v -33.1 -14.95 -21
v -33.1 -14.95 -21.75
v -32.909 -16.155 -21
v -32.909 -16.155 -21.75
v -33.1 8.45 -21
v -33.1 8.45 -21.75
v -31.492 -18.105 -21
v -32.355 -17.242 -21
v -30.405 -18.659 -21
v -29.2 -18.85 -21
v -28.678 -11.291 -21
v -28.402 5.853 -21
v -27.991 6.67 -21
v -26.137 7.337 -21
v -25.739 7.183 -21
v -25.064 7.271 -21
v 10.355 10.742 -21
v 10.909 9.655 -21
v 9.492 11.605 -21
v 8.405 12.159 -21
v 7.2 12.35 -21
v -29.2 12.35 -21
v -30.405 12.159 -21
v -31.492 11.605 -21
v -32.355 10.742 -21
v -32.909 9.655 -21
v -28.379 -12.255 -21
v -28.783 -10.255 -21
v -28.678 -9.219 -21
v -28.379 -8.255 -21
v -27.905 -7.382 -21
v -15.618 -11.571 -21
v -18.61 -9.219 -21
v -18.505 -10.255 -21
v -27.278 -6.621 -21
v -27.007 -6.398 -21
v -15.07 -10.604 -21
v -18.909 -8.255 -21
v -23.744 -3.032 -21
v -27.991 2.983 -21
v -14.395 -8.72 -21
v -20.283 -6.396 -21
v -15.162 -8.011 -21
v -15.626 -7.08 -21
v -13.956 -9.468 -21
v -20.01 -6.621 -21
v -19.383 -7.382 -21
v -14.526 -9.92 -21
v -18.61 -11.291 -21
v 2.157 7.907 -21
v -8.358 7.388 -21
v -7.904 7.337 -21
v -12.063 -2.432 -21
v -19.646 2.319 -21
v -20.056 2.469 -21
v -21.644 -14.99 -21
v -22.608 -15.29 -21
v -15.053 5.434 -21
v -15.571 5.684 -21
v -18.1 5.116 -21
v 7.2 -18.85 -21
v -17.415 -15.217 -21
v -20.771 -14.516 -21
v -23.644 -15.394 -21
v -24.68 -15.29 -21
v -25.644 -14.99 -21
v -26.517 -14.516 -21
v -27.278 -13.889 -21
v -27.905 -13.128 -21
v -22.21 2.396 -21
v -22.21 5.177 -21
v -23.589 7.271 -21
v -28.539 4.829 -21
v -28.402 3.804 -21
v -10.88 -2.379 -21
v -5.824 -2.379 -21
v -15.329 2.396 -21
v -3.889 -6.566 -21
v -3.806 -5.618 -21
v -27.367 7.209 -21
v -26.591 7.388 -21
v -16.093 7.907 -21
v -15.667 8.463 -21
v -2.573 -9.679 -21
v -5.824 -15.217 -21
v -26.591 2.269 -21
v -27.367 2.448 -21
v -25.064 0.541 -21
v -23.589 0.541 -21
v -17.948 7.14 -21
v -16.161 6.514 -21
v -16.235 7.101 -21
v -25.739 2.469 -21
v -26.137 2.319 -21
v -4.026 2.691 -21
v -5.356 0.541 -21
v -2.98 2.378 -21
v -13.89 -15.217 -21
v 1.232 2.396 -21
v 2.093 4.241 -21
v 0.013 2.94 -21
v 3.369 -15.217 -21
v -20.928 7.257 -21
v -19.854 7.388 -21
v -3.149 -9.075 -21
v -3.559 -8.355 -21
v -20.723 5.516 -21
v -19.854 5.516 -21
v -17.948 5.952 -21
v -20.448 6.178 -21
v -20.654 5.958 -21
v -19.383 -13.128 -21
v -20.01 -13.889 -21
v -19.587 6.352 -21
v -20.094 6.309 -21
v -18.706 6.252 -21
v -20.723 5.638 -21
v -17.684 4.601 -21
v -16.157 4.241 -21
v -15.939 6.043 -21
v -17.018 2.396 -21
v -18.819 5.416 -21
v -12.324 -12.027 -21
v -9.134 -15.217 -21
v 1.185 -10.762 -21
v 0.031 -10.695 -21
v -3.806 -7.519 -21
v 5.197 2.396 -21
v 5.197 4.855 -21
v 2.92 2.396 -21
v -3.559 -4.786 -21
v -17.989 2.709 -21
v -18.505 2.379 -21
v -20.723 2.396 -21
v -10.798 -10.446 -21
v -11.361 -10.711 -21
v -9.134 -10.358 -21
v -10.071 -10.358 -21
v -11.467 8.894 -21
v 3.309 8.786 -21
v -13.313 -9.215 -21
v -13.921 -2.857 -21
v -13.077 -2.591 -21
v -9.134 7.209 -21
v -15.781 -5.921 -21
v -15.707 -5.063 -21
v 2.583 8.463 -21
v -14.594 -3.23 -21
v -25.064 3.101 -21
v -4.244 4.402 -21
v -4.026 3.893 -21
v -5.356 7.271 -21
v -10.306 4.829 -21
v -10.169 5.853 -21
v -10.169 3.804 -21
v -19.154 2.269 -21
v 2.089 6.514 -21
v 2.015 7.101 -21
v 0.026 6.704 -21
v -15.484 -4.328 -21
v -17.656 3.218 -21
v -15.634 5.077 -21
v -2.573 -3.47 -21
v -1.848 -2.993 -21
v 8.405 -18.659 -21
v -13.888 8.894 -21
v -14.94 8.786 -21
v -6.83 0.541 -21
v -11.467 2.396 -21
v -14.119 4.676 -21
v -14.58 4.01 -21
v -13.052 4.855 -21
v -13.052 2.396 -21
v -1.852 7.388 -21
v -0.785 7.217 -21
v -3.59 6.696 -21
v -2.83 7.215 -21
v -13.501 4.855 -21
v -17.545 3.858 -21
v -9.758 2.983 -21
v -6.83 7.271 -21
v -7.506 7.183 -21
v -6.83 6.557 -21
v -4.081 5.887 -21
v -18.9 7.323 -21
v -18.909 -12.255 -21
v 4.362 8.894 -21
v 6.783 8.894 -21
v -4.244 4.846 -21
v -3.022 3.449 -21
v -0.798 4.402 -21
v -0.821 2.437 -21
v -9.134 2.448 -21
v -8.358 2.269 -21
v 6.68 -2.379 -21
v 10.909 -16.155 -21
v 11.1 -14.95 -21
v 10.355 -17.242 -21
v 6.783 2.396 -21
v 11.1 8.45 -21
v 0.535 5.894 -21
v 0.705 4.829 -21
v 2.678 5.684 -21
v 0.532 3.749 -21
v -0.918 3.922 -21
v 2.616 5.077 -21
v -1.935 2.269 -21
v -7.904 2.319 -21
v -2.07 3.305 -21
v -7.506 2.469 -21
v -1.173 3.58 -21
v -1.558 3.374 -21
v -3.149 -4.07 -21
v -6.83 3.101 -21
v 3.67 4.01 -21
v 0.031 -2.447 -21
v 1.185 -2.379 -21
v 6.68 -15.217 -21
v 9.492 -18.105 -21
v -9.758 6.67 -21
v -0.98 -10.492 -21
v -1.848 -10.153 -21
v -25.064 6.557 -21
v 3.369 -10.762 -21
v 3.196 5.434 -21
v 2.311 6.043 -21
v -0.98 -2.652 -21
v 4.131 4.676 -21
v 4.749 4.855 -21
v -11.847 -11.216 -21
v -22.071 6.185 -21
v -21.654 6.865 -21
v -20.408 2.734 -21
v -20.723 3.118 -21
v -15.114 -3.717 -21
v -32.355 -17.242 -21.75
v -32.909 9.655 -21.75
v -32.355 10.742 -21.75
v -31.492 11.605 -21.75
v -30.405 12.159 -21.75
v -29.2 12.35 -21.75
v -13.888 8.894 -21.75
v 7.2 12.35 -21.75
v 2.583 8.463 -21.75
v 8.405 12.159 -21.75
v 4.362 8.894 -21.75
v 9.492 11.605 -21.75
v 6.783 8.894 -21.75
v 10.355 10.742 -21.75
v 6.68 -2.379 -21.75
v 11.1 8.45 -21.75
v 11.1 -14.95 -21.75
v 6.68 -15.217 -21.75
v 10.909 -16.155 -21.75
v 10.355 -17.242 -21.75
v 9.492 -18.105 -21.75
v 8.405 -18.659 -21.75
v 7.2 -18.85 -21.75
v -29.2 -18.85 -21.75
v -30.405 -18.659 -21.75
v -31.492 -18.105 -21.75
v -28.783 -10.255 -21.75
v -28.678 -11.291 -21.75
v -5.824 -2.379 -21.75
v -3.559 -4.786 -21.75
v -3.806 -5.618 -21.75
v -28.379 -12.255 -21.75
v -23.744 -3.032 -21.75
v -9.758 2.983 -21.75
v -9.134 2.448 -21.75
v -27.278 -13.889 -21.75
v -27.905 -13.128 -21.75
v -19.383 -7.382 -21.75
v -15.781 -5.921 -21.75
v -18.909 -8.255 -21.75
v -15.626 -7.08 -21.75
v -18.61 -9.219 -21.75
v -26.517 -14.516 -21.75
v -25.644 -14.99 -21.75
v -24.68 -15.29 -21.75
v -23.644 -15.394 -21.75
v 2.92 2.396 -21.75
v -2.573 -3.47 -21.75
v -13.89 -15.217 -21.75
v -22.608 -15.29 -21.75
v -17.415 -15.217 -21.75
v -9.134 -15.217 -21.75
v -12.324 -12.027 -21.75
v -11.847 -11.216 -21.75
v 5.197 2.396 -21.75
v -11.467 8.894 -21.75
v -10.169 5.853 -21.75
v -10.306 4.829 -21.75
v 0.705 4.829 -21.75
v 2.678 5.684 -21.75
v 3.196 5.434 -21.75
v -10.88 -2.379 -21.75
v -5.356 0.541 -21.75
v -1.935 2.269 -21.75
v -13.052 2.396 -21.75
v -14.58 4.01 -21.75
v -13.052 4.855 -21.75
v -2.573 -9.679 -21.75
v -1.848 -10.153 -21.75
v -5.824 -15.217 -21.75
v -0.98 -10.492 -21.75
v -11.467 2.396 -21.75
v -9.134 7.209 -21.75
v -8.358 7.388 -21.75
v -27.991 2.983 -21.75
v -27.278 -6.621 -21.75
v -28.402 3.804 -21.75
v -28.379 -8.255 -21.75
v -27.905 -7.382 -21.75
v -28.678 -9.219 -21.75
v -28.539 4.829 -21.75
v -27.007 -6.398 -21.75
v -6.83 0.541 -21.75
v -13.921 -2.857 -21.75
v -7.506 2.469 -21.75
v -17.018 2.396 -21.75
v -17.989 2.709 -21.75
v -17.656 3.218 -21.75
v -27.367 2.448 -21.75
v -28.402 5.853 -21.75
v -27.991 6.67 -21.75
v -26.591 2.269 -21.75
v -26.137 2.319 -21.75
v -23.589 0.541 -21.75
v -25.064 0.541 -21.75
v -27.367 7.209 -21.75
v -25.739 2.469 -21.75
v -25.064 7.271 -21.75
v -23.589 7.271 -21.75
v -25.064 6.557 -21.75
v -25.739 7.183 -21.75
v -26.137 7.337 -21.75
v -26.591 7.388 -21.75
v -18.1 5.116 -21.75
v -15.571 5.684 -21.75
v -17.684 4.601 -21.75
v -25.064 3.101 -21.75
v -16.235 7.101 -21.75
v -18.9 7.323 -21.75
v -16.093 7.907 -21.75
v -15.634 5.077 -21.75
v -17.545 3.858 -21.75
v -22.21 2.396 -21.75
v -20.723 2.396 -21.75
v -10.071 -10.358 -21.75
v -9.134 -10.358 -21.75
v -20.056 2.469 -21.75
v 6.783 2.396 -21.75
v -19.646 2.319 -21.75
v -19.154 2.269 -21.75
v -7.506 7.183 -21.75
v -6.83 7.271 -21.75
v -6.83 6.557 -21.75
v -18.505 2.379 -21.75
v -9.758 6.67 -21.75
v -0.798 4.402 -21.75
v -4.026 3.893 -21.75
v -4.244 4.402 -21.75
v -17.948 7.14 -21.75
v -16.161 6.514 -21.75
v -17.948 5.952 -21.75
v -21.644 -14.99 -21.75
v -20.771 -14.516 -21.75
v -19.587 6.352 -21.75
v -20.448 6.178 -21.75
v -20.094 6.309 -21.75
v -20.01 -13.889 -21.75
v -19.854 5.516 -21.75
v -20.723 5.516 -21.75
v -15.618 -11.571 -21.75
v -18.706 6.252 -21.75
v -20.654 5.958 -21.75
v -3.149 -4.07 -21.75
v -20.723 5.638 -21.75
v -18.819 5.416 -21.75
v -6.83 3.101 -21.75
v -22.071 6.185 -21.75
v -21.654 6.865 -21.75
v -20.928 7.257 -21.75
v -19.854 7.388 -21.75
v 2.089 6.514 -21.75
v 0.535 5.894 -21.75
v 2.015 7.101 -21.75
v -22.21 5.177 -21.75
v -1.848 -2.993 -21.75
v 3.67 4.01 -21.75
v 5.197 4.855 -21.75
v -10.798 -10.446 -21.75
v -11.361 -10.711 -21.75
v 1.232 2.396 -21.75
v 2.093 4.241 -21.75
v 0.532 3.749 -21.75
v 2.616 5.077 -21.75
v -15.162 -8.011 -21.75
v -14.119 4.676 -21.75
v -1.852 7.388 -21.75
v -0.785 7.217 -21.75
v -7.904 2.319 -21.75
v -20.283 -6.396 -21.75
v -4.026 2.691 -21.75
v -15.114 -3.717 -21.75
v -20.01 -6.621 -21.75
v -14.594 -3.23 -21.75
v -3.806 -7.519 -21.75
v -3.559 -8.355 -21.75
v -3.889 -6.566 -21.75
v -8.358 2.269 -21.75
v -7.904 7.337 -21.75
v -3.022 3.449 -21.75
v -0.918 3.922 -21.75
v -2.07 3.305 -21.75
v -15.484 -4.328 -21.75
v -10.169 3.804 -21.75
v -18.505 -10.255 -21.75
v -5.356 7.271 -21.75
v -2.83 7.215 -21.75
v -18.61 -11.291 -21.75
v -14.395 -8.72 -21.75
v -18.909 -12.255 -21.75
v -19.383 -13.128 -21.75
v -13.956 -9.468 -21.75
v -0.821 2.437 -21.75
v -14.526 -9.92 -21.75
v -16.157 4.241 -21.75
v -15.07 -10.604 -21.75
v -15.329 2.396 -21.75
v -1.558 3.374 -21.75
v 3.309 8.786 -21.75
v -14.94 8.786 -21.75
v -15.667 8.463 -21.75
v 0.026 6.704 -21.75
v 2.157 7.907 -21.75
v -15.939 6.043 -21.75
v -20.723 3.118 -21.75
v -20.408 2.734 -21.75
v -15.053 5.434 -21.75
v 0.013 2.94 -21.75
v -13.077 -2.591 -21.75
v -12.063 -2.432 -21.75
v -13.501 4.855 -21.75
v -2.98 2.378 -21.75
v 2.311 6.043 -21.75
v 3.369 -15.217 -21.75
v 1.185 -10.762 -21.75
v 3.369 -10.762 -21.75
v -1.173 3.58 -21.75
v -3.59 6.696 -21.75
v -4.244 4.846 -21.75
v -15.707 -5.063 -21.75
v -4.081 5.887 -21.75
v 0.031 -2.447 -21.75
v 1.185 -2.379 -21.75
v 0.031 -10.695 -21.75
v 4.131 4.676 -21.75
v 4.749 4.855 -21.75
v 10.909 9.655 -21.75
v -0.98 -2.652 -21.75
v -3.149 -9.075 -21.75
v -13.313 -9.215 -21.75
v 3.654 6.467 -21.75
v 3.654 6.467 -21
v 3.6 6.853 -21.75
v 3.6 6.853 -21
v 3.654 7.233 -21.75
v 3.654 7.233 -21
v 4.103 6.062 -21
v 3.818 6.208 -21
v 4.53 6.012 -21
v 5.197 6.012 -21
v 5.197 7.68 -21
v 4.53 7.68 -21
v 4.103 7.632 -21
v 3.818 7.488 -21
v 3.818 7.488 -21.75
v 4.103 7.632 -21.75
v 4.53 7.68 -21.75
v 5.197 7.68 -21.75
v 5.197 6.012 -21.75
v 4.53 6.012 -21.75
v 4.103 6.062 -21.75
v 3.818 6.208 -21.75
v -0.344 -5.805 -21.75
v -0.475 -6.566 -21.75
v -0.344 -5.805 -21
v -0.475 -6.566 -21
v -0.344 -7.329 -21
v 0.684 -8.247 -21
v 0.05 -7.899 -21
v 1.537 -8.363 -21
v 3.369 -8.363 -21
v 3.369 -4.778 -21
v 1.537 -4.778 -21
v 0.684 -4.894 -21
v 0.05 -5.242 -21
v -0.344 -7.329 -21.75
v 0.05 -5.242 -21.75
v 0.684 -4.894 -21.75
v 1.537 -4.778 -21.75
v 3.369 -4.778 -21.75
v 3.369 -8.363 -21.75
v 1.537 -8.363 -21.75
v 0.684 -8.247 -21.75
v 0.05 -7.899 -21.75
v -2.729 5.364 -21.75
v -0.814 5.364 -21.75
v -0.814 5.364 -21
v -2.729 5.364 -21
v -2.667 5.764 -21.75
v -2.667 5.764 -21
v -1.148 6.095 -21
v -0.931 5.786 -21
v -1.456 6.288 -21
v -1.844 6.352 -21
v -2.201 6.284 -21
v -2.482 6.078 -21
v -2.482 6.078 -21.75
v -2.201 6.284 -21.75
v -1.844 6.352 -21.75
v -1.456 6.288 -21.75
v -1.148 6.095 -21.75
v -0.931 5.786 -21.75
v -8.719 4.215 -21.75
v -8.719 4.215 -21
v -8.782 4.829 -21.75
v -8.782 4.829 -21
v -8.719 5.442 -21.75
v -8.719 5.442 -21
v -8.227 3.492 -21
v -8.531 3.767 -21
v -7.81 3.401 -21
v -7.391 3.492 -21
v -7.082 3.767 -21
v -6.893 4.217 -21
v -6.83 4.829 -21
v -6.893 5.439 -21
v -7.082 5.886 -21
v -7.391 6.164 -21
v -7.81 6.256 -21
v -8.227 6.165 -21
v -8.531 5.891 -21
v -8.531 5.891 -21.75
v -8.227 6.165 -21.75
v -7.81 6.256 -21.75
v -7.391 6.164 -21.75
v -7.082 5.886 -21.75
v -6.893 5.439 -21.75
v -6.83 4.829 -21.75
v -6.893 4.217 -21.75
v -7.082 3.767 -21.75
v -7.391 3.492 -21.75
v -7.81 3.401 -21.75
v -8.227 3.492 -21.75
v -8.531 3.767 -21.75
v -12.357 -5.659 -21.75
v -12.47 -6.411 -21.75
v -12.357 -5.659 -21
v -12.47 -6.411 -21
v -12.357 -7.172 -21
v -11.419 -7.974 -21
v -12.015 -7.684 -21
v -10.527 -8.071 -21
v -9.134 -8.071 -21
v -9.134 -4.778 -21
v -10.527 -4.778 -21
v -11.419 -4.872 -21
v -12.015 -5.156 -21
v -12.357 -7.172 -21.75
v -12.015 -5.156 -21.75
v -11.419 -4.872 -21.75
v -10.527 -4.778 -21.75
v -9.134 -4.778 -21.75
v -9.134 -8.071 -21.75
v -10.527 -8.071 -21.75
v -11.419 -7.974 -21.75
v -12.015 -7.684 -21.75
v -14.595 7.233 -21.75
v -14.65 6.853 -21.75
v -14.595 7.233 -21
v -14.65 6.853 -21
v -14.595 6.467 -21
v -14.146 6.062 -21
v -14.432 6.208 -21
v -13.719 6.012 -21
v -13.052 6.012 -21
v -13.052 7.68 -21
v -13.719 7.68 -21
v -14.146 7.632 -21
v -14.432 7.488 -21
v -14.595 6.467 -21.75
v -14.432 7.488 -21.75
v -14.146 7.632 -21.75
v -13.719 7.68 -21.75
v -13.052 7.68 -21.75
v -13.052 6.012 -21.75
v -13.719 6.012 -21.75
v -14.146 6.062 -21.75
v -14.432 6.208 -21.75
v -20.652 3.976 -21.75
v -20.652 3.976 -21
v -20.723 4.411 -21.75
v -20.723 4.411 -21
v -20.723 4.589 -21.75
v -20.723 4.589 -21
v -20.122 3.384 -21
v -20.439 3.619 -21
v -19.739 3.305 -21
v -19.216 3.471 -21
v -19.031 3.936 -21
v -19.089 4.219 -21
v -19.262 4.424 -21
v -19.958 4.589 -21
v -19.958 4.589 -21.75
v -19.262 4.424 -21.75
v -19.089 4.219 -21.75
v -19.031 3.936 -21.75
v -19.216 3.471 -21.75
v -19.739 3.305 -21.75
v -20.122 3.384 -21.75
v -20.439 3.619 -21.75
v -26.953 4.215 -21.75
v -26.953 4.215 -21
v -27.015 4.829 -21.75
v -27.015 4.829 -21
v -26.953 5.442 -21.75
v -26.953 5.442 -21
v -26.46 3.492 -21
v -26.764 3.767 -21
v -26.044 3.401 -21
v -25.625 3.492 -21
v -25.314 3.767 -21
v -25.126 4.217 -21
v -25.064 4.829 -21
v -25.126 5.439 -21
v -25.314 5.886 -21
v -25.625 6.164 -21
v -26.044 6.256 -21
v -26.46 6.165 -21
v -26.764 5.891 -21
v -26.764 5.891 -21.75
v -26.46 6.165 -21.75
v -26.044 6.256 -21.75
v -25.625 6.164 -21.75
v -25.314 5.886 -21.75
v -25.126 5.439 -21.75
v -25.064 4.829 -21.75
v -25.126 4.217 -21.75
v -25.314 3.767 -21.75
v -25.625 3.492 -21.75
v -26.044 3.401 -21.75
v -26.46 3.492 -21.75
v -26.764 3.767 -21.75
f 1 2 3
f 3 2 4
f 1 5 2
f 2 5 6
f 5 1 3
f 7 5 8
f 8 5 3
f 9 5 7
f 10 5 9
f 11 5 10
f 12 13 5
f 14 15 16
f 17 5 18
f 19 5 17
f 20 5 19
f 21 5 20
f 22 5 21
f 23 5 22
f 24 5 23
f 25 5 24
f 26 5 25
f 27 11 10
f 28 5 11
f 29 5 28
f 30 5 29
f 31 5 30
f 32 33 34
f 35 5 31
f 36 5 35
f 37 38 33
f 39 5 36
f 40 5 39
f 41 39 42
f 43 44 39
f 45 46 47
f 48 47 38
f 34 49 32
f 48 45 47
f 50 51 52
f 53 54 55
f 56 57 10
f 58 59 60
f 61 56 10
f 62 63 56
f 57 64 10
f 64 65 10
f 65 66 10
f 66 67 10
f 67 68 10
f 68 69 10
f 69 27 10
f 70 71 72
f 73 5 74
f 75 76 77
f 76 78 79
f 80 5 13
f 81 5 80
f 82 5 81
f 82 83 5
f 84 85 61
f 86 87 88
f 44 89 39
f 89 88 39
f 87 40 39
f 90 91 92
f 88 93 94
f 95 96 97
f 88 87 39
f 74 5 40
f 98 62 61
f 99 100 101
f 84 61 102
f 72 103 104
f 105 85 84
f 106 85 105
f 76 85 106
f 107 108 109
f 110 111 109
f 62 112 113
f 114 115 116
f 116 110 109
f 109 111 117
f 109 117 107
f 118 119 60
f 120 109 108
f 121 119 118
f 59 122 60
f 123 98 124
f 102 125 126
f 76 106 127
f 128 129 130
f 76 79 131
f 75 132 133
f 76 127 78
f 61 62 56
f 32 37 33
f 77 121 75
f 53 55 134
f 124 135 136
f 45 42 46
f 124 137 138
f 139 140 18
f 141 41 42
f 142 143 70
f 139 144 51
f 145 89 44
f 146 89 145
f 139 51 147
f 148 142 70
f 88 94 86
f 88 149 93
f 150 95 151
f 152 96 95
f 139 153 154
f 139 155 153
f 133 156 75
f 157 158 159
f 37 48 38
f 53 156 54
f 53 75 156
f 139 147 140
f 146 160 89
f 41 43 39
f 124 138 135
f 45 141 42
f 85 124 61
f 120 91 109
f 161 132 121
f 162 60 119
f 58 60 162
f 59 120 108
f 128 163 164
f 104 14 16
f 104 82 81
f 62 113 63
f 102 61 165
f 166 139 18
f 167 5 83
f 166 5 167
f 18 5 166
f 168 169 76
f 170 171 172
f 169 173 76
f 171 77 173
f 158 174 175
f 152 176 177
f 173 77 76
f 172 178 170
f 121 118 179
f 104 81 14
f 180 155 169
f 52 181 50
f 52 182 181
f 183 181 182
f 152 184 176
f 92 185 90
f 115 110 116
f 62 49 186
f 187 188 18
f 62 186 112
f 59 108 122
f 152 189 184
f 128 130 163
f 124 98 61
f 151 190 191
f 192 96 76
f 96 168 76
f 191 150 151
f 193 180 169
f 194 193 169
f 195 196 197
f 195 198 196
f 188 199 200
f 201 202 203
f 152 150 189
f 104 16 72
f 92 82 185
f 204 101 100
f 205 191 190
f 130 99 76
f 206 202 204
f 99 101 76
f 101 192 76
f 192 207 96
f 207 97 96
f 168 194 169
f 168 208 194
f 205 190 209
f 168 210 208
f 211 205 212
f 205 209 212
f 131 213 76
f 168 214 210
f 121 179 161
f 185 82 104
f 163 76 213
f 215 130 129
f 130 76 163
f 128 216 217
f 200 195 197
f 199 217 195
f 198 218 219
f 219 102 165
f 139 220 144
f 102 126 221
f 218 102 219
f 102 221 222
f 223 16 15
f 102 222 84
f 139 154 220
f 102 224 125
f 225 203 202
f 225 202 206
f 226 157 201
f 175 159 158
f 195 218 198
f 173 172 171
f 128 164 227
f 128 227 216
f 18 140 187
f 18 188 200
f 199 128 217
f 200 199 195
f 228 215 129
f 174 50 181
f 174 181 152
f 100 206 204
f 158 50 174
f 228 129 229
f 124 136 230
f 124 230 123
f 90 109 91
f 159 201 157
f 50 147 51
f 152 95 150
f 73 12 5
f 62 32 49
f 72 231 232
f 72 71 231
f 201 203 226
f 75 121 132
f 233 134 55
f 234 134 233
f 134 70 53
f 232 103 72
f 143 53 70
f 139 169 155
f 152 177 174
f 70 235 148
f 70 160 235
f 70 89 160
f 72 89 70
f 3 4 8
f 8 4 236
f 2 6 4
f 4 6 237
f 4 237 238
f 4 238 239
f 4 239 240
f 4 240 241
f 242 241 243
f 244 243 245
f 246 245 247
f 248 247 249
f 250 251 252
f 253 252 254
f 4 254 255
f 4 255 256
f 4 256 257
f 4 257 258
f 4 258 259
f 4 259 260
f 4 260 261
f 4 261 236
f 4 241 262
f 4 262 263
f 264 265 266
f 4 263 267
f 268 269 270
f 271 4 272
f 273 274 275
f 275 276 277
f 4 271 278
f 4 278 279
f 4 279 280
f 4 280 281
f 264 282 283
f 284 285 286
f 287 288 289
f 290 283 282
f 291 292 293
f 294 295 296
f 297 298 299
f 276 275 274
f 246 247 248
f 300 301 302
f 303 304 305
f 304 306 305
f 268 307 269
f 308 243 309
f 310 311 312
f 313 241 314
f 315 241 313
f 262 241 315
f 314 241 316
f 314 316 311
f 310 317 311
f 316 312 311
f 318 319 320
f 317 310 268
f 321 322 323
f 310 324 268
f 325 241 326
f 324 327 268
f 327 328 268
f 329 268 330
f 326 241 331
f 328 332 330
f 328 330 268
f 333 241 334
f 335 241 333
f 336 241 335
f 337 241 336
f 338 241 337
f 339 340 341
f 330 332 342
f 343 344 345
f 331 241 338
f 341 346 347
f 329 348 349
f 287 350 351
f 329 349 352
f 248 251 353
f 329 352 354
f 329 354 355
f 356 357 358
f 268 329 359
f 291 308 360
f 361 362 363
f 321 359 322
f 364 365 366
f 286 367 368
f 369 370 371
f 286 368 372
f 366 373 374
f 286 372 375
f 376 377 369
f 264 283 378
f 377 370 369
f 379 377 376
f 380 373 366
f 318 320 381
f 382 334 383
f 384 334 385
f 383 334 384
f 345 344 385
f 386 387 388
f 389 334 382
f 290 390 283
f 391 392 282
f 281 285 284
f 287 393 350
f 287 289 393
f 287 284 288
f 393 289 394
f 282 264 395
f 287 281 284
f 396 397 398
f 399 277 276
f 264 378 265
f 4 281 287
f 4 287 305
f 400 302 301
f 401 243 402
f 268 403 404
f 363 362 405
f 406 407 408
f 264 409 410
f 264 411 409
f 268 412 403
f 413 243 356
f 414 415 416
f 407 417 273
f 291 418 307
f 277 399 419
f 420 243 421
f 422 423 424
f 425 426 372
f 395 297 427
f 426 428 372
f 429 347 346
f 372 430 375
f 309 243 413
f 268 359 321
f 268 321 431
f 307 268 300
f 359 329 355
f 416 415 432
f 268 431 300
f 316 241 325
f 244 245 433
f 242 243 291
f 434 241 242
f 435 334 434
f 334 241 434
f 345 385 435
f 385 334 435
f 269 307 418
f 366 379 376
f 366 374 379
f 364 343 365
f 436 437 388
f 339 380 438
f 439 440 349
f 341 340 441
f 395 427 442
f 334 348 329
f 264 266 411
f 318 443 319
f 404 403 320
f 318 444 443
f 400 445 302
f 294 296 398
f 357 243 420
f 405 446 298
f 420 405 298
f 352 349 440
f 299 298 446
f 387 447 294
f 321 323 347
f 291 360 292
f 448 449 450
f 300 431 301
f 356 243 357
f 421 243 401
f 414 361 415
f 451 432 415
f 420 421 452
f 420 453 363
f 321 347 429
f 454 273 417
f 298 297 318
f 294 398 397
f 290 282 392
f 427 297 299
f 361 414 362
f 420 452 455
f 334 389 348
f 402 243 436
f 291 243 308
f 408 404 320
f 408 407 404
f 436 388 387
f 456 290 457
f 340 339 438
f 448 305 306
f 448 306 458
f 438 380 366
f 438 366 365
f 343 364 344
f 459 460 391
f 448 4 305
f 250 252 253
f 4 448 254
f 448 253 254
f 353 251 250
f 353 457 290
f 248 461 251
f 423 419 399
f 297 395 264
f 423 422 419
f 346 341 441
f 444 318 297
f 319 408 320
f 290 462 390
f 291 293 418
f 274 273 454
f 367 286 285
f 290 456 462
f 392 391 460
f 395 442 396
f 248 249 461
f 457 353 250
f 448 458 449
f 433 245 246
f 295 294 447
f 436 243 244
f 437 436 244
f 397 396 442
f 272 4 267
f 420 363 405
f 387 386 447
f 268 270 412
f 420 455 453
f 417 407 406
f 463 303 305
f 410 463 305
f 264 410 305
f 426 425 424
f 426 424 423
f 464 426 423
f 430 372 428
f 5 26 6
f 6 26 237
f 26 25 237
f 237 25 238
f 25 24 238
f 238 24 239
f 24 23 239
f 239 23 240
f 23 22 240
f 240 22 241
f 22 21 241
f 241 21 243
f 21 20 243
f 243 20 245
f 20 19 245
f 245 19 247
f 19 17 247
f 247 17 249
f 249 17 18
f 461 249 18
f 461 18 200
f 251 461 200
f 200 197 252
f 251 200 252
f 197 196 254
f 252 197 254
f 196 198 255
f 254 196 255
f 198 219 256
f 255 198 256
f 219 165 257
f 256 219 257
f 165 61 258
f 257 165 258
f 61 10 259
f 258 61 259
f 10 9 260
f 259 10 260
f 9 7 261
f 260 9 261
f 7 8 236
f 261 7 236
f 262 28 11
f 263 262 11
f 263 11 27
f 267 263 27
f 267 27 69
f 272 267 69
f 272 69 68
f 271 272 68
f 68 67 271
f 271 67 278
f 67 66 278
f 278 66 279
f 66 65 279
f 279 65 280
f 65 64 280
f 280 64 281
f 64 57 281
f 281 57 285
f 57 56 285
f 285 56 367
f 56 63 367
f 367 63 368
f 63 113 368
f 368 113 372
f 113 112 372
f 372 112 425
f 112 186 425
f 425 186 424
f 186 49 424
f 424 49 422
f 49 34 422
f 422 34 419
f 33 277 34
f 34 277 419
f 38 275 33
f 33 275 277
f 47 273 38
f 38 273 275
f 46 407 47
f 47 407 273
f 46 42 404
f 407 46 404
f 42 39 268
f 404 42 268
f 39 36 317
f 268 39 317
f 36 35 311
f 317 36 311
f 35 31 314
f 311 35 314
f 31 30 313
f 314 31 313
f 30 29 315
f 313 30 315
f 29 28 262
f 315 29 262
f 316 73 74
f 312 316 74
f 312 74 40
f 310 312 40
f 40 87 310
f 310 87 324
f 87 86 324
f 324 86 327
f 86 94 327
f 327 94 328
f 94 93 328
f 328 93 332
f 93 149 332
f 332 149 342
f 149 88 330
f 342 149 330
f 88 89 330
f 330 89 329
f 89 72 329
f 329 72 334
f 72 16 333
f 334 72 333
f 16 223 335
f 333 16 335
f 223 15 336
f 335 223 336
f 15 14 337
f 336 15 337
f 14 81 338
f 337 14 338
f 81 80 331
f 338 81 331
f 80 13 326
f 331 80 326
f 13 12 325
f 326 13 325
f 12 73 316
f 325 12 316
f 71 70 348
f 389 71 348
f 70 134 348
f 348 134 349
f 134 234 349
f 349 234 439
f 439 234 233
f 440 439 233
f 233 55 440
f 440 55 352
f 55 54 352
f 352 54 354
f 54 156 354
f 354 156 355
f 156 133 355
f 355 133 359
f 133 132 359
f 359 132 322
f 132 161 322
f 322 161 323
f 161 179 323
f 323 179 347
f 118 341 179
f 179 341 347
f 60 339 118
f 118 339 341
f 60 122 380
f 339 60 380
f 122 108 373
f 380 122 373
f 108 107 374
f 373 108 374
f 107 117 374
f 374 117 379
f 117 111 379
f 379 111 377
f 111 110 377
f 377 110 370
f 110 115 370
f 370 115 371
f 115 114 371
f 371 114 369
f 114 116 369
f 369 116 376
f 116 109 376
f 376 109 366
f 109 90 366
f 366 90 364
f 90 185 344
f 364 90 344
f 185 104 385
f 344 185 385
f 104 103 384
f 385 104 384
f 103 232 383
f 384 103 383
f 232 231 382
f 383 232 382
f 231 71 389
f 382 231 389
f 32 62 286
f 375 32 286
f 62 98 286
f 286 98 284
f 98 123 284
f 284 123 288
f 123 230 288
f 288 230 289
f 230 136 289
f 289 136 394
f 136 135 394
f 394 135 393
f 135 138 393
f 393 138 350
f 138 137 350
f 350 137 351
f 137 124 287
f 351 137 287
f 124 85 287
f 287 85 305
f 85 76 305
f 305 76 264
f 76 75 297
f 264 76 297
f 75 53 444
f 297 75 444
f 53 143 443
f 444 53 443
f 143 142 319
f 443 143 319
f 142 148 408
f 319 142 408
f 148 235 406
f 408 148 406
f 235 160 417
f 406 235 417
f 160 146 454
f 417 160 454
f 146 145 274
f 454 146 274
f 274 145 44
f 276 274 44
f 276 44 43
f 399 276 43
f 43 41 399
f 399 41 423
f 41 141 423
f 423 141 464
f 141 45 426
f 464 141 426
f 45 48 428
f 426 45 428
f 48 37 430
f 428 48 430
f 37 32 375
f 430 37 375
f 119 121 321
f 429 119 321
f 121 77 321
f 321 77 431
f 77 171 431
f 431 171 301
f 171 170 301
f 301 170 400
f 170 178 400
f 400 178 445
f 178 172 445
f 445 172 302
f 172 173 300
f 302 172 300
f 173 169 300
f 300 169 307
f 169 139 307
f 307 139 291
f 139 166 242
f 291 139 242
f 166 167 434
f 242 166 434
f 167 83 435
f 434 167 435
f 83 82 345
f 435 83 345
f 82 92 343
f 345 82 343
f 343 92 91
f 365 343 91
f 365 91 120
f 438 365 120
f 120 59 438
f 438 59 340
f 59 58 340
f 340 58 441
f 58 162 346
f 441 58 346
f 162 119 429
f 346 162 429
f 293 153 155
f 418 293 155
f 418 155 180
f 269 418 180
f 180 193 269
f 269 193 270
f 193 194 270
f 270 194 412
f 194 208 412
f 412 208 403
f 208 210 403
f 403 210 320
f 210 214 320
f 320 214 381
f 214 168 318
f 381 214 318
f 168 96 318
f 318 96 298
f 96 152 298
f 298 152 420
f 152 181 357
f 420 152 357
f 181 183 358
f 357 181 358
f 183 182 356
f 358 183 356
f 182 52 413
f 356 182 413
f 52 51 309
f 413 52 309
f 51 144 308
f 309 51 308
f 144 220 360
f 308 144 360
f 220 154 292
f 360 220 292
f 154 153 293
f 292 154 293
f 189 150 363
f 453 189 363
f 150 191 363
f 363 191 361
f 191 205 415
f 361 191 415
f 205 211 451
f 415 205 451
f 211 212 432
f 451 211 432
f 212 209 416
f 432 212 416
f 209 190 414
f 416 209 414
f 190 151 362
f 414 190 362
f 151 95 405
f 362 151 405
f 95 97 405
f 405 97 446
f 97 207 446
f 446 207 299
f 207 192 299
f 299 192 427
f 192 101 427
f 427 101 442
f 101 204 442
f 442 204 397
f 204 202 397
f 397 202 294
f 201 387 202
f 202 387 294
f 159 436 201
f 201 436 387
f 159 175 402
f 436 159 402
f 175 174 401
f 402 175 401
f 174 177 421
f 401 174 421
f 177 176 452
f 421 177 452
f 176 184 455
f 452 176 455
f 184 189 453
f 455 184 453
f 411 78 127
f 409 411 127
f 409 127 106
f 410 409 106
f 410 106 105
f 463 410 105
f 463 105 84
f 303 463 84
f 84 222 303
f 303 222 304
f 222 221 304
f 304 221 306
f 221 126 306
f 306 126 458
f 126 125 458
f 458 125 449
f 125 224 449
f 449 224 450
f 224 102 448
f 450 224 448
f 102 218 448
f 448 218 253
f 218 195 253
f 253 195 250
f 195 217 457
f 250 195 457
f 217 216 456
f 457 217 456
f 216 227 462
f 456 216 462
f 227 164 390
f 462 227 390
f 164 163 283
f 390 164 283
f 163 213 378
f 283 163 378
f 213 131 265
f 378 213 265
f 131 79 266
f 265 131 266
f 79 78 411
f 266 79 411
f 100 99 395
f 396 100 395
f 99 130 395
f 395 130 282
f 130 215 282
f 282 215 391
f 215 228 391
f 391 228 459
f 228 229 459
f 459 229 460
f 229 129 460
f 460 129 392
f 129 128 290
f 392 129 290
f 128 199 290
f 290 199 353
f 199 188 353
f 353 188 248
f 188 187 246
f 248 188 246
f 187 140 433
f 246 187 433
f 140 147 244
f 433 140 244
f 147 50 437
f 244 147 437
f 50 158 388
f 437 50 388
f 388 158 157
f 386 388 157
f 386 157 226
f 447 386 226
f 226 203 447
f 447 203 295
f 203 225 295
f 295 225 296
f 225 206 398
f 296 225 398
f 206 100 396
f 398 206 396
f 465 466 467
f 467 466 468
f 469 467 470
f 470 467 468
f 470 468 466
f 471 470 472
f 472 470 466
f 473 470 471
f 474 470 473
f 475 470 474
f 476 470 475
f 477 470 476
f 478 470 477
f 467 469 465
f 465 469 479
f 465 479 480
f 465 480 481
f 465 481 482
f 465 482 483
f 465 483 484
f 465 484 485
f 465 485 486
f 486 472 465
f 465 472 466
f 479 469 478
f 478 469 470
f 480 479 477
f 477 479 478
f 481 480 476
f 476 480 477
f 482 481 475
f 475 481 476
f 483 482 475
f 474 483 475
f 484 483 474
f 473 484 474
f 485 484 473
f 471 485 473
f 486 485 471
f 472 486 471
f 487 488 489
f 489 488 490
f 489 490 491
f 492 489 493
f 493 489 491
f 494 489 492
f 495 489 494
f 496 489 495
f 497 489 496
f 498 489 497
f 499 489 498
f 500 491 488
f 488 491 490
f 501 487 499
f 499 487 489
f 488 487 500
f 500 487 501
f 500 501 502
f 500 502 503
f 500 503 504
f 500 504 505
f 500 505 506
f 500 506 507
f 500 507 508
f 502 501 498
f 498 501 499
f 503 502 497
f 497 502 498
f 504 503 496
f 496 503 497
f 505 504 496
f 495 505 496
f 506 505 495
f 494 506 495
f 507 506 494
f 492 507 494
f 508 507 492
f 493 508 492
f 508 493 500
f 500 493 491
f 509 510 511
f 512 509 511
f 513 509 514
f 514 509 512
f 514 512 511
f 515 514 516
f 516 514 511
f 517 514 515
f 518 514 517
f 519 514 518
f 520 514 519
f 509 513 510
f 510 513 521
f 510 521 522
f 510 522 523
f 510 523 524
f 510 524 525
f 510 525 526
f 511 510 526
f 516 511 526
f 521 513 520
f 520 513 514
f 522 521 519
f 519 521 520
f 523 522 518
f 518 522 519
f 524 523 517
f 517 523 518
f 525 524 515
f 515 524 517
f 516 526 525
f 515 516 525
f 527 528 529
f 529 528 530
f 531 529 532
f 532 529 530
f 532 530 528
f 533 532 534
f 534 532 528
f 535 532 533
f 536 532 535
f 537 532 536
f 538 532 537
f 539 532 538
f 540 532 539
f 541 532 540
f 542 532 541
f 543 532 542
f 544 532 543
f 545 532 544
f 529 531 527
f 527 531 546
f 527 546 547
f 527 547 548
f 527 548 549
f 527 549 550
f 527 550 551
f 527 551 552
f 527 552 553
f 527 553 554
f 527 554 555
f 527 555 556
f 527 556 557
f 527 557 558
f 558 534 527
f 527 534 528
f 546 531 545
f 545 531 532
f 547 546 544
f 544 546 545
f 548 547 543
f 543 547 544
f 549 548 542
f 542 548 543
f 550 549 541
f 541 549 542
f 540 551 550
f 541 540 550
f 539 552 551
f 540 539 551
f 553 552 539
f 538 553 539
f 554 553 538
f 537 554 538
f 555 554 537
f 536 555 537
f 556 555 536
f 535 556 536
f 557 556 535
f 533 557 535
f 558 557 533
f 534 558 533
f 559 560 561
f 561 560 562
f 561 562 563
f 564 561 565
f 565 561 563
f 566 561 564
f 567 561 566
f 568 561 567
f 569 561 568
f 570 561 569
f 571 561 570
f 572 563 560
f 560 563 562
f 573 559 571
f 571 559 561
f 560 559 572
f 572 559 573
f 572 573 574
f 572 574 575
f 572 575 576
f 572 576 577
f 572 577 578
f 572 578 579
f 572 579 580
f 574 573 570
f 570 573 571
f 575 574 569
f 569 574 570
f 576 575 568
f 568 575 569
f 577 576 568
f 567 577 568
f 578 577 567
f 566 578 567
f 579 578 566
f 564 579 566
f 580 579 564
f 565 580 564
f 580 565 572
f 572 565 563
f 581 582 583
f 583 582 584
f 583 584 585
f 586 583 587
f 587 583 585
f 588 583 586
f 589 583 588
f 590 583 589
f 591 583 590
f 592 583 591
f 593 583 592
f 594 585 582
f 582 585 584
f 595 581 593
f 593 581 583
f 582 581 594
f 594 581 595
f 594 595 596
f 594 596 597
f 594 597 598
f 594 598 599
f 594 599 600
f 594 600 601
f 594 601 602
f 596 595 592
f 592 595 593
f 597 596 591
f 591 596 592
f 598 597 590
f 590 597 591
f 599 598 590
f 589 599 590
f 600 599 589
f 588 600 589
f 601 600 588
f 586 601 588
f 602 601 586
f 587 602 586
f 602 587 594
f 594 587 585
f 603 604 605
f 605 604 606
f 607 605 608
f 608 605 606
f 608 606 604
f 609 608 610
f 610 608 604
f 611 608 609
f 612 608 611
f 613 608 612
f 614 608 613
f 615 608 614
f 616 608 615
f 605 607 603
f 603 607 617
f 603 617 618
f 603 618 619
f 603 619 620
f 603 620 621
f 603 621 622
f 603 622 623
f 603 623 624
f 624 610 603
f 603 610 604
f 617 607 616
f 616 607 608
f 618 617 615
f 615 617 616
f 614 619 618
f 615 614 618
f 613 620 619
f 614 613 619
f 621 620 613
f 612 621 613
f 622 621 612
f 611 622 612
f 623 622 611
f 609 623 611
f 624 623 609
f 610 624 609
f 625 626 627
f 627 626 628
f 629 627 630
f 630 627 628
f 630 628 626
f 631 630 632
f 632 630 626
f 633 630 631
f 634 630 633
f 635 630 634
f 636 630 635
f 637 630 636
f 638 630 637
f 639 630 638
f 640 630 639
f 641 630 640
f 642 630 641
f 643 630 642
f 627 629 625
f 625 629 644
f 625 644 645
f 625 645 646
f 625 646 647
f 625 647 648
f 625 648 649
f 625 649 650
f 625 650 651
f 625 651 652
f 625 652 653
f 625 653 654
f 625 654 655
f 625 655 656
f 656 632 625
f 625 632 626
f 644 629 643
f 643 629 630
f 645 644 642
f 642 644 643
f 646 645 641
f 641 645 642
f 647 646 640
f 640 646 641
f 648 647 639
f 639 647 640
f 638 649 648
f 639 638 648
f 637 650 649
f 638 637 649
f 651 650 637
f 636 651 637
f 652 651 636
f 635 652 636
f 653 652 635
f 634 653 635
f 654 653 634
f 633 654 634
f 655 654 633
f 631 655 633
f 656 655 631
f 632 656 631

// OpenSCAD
/*

	Power supply cover for 12V 20A supply.

	Adrian Bowyer
	April 2012

	Licence: GPL
*/


zi=41;              // internal height
xi=112;            // Internal width
yi=51;              // Internal depth
thick=2.5;        // Wall thickness
screw_y=26;   // Retaining screw coord
screw_z=37;   // Retaining screw coord
screw_d=3.3;  //  Retaining screw diameter
head_d=6;       //  Retaining screw head diameter
fixz=34;           // Retaining cone z coord
catchy=10;  	// catch y pos
catcha=10;
catchb=10;
catchc=25;
catchoff=[catcha/2-6,0,catchc-21+5];
c8x=23;           // IEC C8 rectangle size X
c8y=18;           // IEC C8 rectangle size Y
c8holes=30;   //  IEC C8 mounting hole centres
wx = 7;             // Low voltage wire size X
wy = 3.5;         // Low voltage wire size Y
wthick=4;        // Wire clamp thickness
whigh=20;      // Wire clamp height
wlong=20;      // Wire clamp length
basez=14;      // Indentation for bottom sheet
wallx=54;       // Wall between mains and low-voltage side
walldent1 = 50; //Wall indentations to accommodate screw connector etc
walldent2=60;
walldent3=35;

clampxyz=[-xi/2 + wlong/2 + 10, yi/2 - (wy+wthick*2)/2 - 5, -zi/2 + whigh/2 - 0.5];
logoxyz=clampxyz-[-25,18,12];
logoThick = 5;
screwxyz=[-xi/2, yi/2-screw_y, -zi/2 +screw_z];
catchxyz=[(xi-catcha)/2,-(yi-catchb)/2 + catchy,-(zi-catchc)/2];


//ps_cover();


intersection() { logo(); body(); }

module logo()
{
	color("green")

	translate(logoxyz)
	rotate([0,180,0])
	scale([1.3,1.3,1])
	difference()
	{
		union()
		{
			cube([34,18,4],center=true);
			cube([28,24,4],center=true);
			for(i=[-1,1])
			{
				translate([i*(34/2-3), 18/2,0])
					cylinder(r=3,h=4,center=true,$fn=20);
				translate([i*(34/2-3),-18/2 ,0])
					cylinder(r=3,h=4,center=true,$fn=20);
			}
		}
		translate([0,0,-2.5])
		union()
		{
			poly_path3033(logoThick);
			poly_path3045(logoThick);
			poly_path2894(logoThick);
			poly_path3047(logoThick);
			poly_rect3668(logoThick);
			poly_path3049(logoThick);
			poly_path3039(logoThick);
			poly_path3036(logoThick);
			poly_path3041(logoThick);
			poly_path3043(logoThick);
		}
	}

}

module body()
{
	difference()
			{
				cube([xi+2*thick,yi+thick,zi+thick],center=true);
				translate([0,0,thick])
					cube([xi,yi-thick,zi+thick],center=true);
				translate([0,-yi/2,thick+basez])
					cube([xi,5*thick,zi],center=true);
			}
}

module ps_cover()
{
	difference()
	{
		union()
		{
			body();
			translate(clampxyz)
				wire_clamp();
			translate(catchxyz)
				cube([catcha,catchb,catchc],center=true);
			translate([(xi+2*thick)/2 - wallx,0,0])
				difference()
				{
					cube([thick,yi+thick,zi+thick],center=true);
					translate([0, -(yi+thick)/2, (zi+thick)/2])
						cube([5*thick,walldent1,walldent2],center=true);
					translate([0, (yi+thick)/2, (zi+thick)/2])
						cube([5*thick,walldent2,walldent3],center=true);
				}
		}
		translate([xi/2 - c8holes/2 - 10, yi/2 - c8y/2 - 5, -zi/2])
			c8_holes();
		translate(clampxyz)
			wire_holes();
		translate(screwxyz)
			rotate([0,90,0])
				cylinder(r=screw_d/2,h=10,center=true,$fn=20);
		translate(catchxyz+catchoff)
		{
			rotate([90,0,0])
				cylinder(r=1.5,h=100,center=true,$fn=20);
			translate([0,50,0])
				rotate([90,0,0])
					cylinder(r=3,h=60,center=true,$fn=20);
		}

		logo();
	}
}

module wire_holes()
{
	translate([-wthick,0,0])
		cube([wx,wy,zi*5],center=true);
	translate([wlong/2-screw_d,0,whigh/2-screw_d])
	{
		rotate([90,0,0])
			cylinder(r=screw_d/2,h=50,center=true,$fn=20);
		translate([0,5+(wy+wthick*2)/2,0])
		rotate([90,0,0])
			cylinder(r=head_d/2,h=10,center=true,$fn=20);
	}
}


module wire_clamp()
{
	difference()
	{
		cube([wlong,wy+wthick*2,whigh],center=true);
		translate([wthick,0,0])
			cube([wlong,wy,2*whigh],center=true);
	}
}


module c8_holes()
{
	union()
	{
		cube([c8x,c8y,10*thick],center=true);
		translate([-c8holes/2,0,0])
			cylinder(h=10*thick,r=screw_d/2,center=true,$fn=20);
		translate([c8holes/2,0,0])
			cylinder(h=10*thick,r=screw_d/2,center=true,$fn=20);
	}
}






// Module names are of the form poly_<inkscape-path-id>().  As a result,
// you can associate a polygon in this OpenSCAD program with the corresponding
// SVG element in the Inkscape document by looking for the XML element with
// the attribute id="inkscape-path-id".

// fudge value is used to ensure that subtracted solids are a tad taller
// in the z dimension than the polygon being subtracted from.  This helps
// keep the resulting .stl file manifold.
fudge = 0.1;

module poly_path3033(h)
{
  scale([25.4/90, -25.4/90, 1]) union()
  {
    difference()
    {
       linear_extrude(height=h)
         polygon([[-5.085352,19.374736],[-5.085352,32.616923],[-14.108789,32.616923],[-14.108789,-2.375264],[-0.327539,-2.375264],[2.898034,-2.230225],[5.660724,-1.795160],[7.960533,-1.070069],[9.797461,-0.054952],[11.212483,1.273679],[12.223219,2.939211],[12.829670,4.941647],[13.031836,7.280986],[12.609938,10.439205],[11.344336,12.976298],[9.252518,14.909905],[6.305273,16.257548],[8.057207,16.948966],[9.609961,18.179423],[11.092361,20.042714],[12.586523,22.679423],[17.484961,32.616923],[7.875586,32.616923],[3.609961,23.921611],[2.309164,21.712635],[0.984961,20.335673],[-0.550209,19.614980],[-2.530664,19.374736],[-5.085352,19.374736]]);
       translate([0, 0, -fudge])
         linear_extrude(height=h+2*fudge)
           polygon([[-1.288477,13.140361],[1.143149,12.876704],[2.766211,12.085673],[3.697835,10.691159],[4.008398,8.616923],[3.697835,6.566162],[2.766211,5.195048],[1.143149,4.421632],[-1.288477,4.163798],[-5.085352,4.163798],[-5.085352,13.140361]]);
    }
  }
}

module poly_path3045(h)
{
  scale([25.4/90, -25.4/90, 1]) union()
  {
    difference()
    {
       linear_extrude(height=h)
         polygon([[5.593479,-22.090523],[5.593479,-15.387723],[1.272512,-15.387723],[1.272512,-33.099722],[7.871806,-33.099722],[10.739349,-32.806091],[12.720269,-31.925249],[13.881868,-30.409693],[14.269083,-28.212017],[14.067053,-26.613420],[13.461006,-25.329220],[12.459317,-24.350486],[11.047998,-23.668350],[12.630482,-22.695554],[14.055840,-20.417788],[16.401508,-15.387723],[11.799959,-15.387723],[9.757320,-19.789030],[8.500311,-21.604125],[6.816817,-22.090523],[5.593479,-22.090523]]);
       translate([0, 0, -fudge])
         linear_extrude(height=h+2*fudge)
           polygon([[7.411652,-25.246177],[8.576061,-25.379632],[9.353281,-25.780028],[9.799399,-26.485890],[9.948116,-27.535806],[9.799399,-28.573840],[9.353281,-29.267857],[8.576061,-29.659337],[7.411652,-29.789845],[5.593479,-29.789845],[5.593479,-25.246177]]);
    }
  }
}

module poly_path2894(h)
{
  scale([25.4/90, -25.4/90, 1]) union()
  {
    linear_extrude(height=h)
      polygon([[48.469119,19.093223],[48.184557,21.916021],[47.368419,24.545185],[46.077029,26.924390],[44.366710,28.997314],[42.293787,30.707632],[39.914581,31.999022],[37.285418,32.815160],[34.462619,33.099722],[31.639821,32.815160],[29.010657,31.999022],[26.631452,30.707632],[24.558528,28.997314],[22.848209,26.924390],[21.556819,24.545185],[20.740681,21.916021],[20.456119,19.093223],[20.740681,16.270425],[21.556819,13.641261],[22.848209,11.262055],[24.558528,9.189132],[26.631452,7.478813],[29.010657,6.187423],[31.639821,5.371285],[34.462619,5.086723],[37.285418,5.371285],[39.914581,6.187423],[42.293787,7.478813],[44.366710,9.189132],[46.077029,11.262055],[47.368419,13.641261],[48.184557,16.270425],[48.469119,19.093223]]);
  }
}

module poly_path3047(h)
{
  scale([25.4/90, -25.4/90, 1]) union()
  {
    difference()
    {
       linear_extrude(height=h)
         polygon([[30.554078,-22.968411],[30.554078,-15.387723],[26.502470,-15.387723],[26.502470,-17.357041],[25.643881,-16.310099],[24.684297,-15.589400],[23.564768,-15.180114],[22.226395,-15.043685],[20.455918,-15.343236],[19.050203,-16.241885],[18.141116,-17.629897],[17.838088,-19.373813],[18.216873,-21.399477],[19.353232,-22.802324],[21.311694,-23.620890],[24.134355,-23.893754],[26.502470,-23.893754],[26.502470,-24.225928],[26.314472,-25.097877],[25.750509,-25.696985],[24.788106,-26.052877],[23.404841,-26.171518],[21.003057,-25.898662],[18.937970,-25.080090],[18.937970,-28.318787],[21.530551,-28.817049],[24.134355,-28.994999],[27.060821,-28.639088],[29.038934,-27.571395],[30.175282,-25.714771],[30.554078,-22.968411]]);
       translate([0, 0, -fudge])
         linear_extrude(height=h+2*fudge)
           polygon([[24.414937,-21.366857],[22.518201,-20.916049],[22.046819,-20.358468],[21.889696,-19.587353],[22.394745,-18.317974],[23.820103,-17.867166],[24.863863,-18.080705],[25.728062,-18.721328],[26.308861,-19.694120],[26.502470,-20.880460],[26.502470,-21.366857],[24.414937,-21.366857]]);
    }
  }
}

module poly_rect3668(h)
{
  scale([25.4/90, -25.4/90, 1]) union()
  {
    linear_extrude(height=h)
      polygon([[34.735515,-0.594379],[45.105917,10.103823],[34.494317,20.419423],[24.123915,9.721221]]);
  }
}

module poly_path3049(h)
{
  scale([25.4/90, -25.4/90, 1]) union()
  {
    difference()
    {
       linear_extrude(height=h)
         polygon([[38.331823,-17.309588],[38.331823,-10.333931],[34.313884,-10.333931],[34.313884,-28.674688],[38.331823,-28.674688],[38.331823,-26.729097],[40.172445,-28.437421],[41.258288,-28.855594],[42.495667,-28.994999],[44.611244,-28.505625],[46.311584,-27.037544],[47.431097,-24.810191],[47.804279,-22.019342],[47.431097,-19.225518],[46.311584,-16.989277],[44.611244,-15.530084],[42.495667,-15.043685],[41.258288,-15.180114],[40.172445,-15.589400],[38.331823,-17.309588]]);
       translate([0, 0, -fudge])
         linear_extrude(height=h+2*fudge)
           polygon([[41.002961,-25.910525],[39.860988,-25.658421],[39.016442,-24.902139],[38.502973,-23.683173],[38.331823,-22.019342],[38.502973,-20.352536],[39.016442,-19.124682],[39.860988,-18.377288],[41.002961,-18.128159],[42.139313,-18.377288],[42.967042,-19.124682],[43.480500,-20.346605],[43.651660,-22.019342],[43.480500,-23.692070],[42.967042,-24.914002],[42.139313,-25.661387]]);
    }
  }
}

module poly_path3039(h)
{
  scale([25.4/90, -25.4/90, 1]) union()
  {
    difference()
    {
       linear_extrude(height=h)
         polygon([[-44.148152,-22.090523],[-44.148152,-15.387723],[-48.469119,-15.387723],[-48.469119,-33.099722],[-41.869825,-33.099722],[-39.002282,-32.806091],[-37.021362,-31.925249],[-35.859762,-30.409693],[-35.472548,-28.212017],[-35.674578,-26.613420],[-36.280625,-25.329220],[-37.282314,-24.350486],[-38.693633,-23.668350],[-37.111149,-22.695554],[-35.685791,-20.417788],[-33.340122,-15.387723],[-37.941672,-15.387723],[-39.984311,-19.789030],[-41.241320,-21.604125],[-42.924813,-22.090523],[-44.148152,-22.090523]]);
       translate([0, 0, -fudge])
         linear_extrude(height=h+2*fudge)
           polygon([[-42.329979,-25.246177],[-41.165570,-25.379632],[-40.388349,-25.780028],[-39.942232,-26.485890],[-39.793515,-27.535806],[-39.942232,-28.573840],[-40.388349,-29.267857],[-41.165570,-29.659337],[-42.329979,-29.789845],[-44.148152,-29.789845],[-44.148152,-25.246177]]);
    }
  }
}

module poly_path3036(h)
{
  scale([25.4/90, -25.4/90, 1]) union()
  {
    difference()
    {
       linear_extrude(height=h)
         polygon([[-48.187968,-2.375264],[-33.211406,-2.375264],[-30.066400,-2.189209],[-27.311034,-1.631098],[-24.945307,-0.700929],[-22.969218,0.601298],[-21.400388,2.236080],[-20.279789,4.187257],[-19.607420,6.454830],[-19.383281,9.038798],[-19.607420,11.634512],[-20.279789,13.913812],[-21.400388,15.876699],[-22.969218,17.523173],[-24.945307,18.815172],[-27.311034,19.738026],[-30.066400,20.291735],[-33.211406,20.476298],[-39.164531,20.476298],[-39.164531,32.616923],[-48.187968,32.616923],[-48.187968,-2.375264]]);
       translate([0, 0, -fudge])
         linear_extrude(height=h+2*fudge)
           polygon([[-39.164531,4.163798],[-39.164531,13.937236],[-34.172343,13.937236],[-31.846186,13.620844],[-30.117656,12.671611],[-29.045407,11.118893],[-28.687968,9.038798],[-29.045407,6.964599],[-30.117656,5.429423],[-31.846186,4.480226],[-34.172343,4.163798]]);
    }
  }
}

module poly_path3041(h)
{
  scale([25.4/90, -25.4/90, 1]) union()
  {
    difference()
    {
       linear_extrude(height=h)
         polygon([[-18.413144,-22.066796],[-18.413144,-20.856733],[-27.807039,-20.856733],[-27.478761,-19.548794],[-26.785719,-18.614558],[-25.736347,-18.054012],[-24.339042,-17.867166],[-21.746461,-18.258656],[-19.007978,-19.468720],[-19.007978,-16.194432],[-21.858694,-15.340270],[-24.709411,-15.043685],[-27.742509,-15.500425],[-30.018028,-16.870643],[-31.432164,-19.077225],[-31.903541,-22.019342],[-31.440581,-24.922893],[-30.051697,-27.132451],[-27.840713,-28.529352],[-24.933877,-28.994999],[-22.268353,-28.523420],[-20.197648,-27.108725],[-18.859281,-24.905098],[-18.413144,-22.066796]]);
       translate([0, 0, -fudge])
         linear_extrude(height=h+2*fudge)
           polygon([[-22.543315,-23.478536],[-22.711673,-24.569958],[-23.216713,-25.424127],[-23.982709,-25.984663],[-24.956324,-26.171518],[-26.014124,-25.996526],[-26.853060,-25.471581],[-27.445092,-24.629275],[-27.762146,-23.478536]]);
    }
  }
}

module poly_path3043(h)
{
  scale([25.4/90, -25.4/90, 1]) union()
  {
    difference()
    {
       linear_extrude(height=h)
         polygon([[-11.364917,-17.309588],[-11.364917,-10.333931],[-15.382855,-10.333931],[-15.382855,-28.674688],[-11.364917,-28.674688],[-11.364917,-26.729097],[-9.524297,-28.437421],[-8.438450,-28.855594],[-7.201076,-28.994999],[-5.085494,-28.505625],[-3.385157,-27.037544],[-2.265644,-24.810191],[-1.892459,-22.019342],[-2.265644,-19.225518],[-3.385157,-16.989277],[-5.085494,-15.530084],[-7.201076,-15.043685],[-8.438450,-15.180114],[-9.524297,-15.589400],[-11.364917,-17.309588]]);
       translate([0, 0, -fudge])
         linear_extrude(height=h+2*fudge)
           polygon([[-8.693773,-25.910525],[-9.835749,-25.658421],[-10.680296,-24.902139],[-11.193766,-23.683173],[-11.364917,-22.019342],[-11.193766,-20.352536],[-10.680296,-19.124682],[-9.835749,-18.377288],[-8.693773,-18.128159],[-7.557423,-18.377288],[-6.729698,-19.124682],[-6.216240,-20.346605],[-6.045077,-22.019342],[-6.216240,-23.692070],[-6.729698,-24.914002],[-7.557423,-25.661387],[-8.693773,-25.910525]]);
    }
  }
}
